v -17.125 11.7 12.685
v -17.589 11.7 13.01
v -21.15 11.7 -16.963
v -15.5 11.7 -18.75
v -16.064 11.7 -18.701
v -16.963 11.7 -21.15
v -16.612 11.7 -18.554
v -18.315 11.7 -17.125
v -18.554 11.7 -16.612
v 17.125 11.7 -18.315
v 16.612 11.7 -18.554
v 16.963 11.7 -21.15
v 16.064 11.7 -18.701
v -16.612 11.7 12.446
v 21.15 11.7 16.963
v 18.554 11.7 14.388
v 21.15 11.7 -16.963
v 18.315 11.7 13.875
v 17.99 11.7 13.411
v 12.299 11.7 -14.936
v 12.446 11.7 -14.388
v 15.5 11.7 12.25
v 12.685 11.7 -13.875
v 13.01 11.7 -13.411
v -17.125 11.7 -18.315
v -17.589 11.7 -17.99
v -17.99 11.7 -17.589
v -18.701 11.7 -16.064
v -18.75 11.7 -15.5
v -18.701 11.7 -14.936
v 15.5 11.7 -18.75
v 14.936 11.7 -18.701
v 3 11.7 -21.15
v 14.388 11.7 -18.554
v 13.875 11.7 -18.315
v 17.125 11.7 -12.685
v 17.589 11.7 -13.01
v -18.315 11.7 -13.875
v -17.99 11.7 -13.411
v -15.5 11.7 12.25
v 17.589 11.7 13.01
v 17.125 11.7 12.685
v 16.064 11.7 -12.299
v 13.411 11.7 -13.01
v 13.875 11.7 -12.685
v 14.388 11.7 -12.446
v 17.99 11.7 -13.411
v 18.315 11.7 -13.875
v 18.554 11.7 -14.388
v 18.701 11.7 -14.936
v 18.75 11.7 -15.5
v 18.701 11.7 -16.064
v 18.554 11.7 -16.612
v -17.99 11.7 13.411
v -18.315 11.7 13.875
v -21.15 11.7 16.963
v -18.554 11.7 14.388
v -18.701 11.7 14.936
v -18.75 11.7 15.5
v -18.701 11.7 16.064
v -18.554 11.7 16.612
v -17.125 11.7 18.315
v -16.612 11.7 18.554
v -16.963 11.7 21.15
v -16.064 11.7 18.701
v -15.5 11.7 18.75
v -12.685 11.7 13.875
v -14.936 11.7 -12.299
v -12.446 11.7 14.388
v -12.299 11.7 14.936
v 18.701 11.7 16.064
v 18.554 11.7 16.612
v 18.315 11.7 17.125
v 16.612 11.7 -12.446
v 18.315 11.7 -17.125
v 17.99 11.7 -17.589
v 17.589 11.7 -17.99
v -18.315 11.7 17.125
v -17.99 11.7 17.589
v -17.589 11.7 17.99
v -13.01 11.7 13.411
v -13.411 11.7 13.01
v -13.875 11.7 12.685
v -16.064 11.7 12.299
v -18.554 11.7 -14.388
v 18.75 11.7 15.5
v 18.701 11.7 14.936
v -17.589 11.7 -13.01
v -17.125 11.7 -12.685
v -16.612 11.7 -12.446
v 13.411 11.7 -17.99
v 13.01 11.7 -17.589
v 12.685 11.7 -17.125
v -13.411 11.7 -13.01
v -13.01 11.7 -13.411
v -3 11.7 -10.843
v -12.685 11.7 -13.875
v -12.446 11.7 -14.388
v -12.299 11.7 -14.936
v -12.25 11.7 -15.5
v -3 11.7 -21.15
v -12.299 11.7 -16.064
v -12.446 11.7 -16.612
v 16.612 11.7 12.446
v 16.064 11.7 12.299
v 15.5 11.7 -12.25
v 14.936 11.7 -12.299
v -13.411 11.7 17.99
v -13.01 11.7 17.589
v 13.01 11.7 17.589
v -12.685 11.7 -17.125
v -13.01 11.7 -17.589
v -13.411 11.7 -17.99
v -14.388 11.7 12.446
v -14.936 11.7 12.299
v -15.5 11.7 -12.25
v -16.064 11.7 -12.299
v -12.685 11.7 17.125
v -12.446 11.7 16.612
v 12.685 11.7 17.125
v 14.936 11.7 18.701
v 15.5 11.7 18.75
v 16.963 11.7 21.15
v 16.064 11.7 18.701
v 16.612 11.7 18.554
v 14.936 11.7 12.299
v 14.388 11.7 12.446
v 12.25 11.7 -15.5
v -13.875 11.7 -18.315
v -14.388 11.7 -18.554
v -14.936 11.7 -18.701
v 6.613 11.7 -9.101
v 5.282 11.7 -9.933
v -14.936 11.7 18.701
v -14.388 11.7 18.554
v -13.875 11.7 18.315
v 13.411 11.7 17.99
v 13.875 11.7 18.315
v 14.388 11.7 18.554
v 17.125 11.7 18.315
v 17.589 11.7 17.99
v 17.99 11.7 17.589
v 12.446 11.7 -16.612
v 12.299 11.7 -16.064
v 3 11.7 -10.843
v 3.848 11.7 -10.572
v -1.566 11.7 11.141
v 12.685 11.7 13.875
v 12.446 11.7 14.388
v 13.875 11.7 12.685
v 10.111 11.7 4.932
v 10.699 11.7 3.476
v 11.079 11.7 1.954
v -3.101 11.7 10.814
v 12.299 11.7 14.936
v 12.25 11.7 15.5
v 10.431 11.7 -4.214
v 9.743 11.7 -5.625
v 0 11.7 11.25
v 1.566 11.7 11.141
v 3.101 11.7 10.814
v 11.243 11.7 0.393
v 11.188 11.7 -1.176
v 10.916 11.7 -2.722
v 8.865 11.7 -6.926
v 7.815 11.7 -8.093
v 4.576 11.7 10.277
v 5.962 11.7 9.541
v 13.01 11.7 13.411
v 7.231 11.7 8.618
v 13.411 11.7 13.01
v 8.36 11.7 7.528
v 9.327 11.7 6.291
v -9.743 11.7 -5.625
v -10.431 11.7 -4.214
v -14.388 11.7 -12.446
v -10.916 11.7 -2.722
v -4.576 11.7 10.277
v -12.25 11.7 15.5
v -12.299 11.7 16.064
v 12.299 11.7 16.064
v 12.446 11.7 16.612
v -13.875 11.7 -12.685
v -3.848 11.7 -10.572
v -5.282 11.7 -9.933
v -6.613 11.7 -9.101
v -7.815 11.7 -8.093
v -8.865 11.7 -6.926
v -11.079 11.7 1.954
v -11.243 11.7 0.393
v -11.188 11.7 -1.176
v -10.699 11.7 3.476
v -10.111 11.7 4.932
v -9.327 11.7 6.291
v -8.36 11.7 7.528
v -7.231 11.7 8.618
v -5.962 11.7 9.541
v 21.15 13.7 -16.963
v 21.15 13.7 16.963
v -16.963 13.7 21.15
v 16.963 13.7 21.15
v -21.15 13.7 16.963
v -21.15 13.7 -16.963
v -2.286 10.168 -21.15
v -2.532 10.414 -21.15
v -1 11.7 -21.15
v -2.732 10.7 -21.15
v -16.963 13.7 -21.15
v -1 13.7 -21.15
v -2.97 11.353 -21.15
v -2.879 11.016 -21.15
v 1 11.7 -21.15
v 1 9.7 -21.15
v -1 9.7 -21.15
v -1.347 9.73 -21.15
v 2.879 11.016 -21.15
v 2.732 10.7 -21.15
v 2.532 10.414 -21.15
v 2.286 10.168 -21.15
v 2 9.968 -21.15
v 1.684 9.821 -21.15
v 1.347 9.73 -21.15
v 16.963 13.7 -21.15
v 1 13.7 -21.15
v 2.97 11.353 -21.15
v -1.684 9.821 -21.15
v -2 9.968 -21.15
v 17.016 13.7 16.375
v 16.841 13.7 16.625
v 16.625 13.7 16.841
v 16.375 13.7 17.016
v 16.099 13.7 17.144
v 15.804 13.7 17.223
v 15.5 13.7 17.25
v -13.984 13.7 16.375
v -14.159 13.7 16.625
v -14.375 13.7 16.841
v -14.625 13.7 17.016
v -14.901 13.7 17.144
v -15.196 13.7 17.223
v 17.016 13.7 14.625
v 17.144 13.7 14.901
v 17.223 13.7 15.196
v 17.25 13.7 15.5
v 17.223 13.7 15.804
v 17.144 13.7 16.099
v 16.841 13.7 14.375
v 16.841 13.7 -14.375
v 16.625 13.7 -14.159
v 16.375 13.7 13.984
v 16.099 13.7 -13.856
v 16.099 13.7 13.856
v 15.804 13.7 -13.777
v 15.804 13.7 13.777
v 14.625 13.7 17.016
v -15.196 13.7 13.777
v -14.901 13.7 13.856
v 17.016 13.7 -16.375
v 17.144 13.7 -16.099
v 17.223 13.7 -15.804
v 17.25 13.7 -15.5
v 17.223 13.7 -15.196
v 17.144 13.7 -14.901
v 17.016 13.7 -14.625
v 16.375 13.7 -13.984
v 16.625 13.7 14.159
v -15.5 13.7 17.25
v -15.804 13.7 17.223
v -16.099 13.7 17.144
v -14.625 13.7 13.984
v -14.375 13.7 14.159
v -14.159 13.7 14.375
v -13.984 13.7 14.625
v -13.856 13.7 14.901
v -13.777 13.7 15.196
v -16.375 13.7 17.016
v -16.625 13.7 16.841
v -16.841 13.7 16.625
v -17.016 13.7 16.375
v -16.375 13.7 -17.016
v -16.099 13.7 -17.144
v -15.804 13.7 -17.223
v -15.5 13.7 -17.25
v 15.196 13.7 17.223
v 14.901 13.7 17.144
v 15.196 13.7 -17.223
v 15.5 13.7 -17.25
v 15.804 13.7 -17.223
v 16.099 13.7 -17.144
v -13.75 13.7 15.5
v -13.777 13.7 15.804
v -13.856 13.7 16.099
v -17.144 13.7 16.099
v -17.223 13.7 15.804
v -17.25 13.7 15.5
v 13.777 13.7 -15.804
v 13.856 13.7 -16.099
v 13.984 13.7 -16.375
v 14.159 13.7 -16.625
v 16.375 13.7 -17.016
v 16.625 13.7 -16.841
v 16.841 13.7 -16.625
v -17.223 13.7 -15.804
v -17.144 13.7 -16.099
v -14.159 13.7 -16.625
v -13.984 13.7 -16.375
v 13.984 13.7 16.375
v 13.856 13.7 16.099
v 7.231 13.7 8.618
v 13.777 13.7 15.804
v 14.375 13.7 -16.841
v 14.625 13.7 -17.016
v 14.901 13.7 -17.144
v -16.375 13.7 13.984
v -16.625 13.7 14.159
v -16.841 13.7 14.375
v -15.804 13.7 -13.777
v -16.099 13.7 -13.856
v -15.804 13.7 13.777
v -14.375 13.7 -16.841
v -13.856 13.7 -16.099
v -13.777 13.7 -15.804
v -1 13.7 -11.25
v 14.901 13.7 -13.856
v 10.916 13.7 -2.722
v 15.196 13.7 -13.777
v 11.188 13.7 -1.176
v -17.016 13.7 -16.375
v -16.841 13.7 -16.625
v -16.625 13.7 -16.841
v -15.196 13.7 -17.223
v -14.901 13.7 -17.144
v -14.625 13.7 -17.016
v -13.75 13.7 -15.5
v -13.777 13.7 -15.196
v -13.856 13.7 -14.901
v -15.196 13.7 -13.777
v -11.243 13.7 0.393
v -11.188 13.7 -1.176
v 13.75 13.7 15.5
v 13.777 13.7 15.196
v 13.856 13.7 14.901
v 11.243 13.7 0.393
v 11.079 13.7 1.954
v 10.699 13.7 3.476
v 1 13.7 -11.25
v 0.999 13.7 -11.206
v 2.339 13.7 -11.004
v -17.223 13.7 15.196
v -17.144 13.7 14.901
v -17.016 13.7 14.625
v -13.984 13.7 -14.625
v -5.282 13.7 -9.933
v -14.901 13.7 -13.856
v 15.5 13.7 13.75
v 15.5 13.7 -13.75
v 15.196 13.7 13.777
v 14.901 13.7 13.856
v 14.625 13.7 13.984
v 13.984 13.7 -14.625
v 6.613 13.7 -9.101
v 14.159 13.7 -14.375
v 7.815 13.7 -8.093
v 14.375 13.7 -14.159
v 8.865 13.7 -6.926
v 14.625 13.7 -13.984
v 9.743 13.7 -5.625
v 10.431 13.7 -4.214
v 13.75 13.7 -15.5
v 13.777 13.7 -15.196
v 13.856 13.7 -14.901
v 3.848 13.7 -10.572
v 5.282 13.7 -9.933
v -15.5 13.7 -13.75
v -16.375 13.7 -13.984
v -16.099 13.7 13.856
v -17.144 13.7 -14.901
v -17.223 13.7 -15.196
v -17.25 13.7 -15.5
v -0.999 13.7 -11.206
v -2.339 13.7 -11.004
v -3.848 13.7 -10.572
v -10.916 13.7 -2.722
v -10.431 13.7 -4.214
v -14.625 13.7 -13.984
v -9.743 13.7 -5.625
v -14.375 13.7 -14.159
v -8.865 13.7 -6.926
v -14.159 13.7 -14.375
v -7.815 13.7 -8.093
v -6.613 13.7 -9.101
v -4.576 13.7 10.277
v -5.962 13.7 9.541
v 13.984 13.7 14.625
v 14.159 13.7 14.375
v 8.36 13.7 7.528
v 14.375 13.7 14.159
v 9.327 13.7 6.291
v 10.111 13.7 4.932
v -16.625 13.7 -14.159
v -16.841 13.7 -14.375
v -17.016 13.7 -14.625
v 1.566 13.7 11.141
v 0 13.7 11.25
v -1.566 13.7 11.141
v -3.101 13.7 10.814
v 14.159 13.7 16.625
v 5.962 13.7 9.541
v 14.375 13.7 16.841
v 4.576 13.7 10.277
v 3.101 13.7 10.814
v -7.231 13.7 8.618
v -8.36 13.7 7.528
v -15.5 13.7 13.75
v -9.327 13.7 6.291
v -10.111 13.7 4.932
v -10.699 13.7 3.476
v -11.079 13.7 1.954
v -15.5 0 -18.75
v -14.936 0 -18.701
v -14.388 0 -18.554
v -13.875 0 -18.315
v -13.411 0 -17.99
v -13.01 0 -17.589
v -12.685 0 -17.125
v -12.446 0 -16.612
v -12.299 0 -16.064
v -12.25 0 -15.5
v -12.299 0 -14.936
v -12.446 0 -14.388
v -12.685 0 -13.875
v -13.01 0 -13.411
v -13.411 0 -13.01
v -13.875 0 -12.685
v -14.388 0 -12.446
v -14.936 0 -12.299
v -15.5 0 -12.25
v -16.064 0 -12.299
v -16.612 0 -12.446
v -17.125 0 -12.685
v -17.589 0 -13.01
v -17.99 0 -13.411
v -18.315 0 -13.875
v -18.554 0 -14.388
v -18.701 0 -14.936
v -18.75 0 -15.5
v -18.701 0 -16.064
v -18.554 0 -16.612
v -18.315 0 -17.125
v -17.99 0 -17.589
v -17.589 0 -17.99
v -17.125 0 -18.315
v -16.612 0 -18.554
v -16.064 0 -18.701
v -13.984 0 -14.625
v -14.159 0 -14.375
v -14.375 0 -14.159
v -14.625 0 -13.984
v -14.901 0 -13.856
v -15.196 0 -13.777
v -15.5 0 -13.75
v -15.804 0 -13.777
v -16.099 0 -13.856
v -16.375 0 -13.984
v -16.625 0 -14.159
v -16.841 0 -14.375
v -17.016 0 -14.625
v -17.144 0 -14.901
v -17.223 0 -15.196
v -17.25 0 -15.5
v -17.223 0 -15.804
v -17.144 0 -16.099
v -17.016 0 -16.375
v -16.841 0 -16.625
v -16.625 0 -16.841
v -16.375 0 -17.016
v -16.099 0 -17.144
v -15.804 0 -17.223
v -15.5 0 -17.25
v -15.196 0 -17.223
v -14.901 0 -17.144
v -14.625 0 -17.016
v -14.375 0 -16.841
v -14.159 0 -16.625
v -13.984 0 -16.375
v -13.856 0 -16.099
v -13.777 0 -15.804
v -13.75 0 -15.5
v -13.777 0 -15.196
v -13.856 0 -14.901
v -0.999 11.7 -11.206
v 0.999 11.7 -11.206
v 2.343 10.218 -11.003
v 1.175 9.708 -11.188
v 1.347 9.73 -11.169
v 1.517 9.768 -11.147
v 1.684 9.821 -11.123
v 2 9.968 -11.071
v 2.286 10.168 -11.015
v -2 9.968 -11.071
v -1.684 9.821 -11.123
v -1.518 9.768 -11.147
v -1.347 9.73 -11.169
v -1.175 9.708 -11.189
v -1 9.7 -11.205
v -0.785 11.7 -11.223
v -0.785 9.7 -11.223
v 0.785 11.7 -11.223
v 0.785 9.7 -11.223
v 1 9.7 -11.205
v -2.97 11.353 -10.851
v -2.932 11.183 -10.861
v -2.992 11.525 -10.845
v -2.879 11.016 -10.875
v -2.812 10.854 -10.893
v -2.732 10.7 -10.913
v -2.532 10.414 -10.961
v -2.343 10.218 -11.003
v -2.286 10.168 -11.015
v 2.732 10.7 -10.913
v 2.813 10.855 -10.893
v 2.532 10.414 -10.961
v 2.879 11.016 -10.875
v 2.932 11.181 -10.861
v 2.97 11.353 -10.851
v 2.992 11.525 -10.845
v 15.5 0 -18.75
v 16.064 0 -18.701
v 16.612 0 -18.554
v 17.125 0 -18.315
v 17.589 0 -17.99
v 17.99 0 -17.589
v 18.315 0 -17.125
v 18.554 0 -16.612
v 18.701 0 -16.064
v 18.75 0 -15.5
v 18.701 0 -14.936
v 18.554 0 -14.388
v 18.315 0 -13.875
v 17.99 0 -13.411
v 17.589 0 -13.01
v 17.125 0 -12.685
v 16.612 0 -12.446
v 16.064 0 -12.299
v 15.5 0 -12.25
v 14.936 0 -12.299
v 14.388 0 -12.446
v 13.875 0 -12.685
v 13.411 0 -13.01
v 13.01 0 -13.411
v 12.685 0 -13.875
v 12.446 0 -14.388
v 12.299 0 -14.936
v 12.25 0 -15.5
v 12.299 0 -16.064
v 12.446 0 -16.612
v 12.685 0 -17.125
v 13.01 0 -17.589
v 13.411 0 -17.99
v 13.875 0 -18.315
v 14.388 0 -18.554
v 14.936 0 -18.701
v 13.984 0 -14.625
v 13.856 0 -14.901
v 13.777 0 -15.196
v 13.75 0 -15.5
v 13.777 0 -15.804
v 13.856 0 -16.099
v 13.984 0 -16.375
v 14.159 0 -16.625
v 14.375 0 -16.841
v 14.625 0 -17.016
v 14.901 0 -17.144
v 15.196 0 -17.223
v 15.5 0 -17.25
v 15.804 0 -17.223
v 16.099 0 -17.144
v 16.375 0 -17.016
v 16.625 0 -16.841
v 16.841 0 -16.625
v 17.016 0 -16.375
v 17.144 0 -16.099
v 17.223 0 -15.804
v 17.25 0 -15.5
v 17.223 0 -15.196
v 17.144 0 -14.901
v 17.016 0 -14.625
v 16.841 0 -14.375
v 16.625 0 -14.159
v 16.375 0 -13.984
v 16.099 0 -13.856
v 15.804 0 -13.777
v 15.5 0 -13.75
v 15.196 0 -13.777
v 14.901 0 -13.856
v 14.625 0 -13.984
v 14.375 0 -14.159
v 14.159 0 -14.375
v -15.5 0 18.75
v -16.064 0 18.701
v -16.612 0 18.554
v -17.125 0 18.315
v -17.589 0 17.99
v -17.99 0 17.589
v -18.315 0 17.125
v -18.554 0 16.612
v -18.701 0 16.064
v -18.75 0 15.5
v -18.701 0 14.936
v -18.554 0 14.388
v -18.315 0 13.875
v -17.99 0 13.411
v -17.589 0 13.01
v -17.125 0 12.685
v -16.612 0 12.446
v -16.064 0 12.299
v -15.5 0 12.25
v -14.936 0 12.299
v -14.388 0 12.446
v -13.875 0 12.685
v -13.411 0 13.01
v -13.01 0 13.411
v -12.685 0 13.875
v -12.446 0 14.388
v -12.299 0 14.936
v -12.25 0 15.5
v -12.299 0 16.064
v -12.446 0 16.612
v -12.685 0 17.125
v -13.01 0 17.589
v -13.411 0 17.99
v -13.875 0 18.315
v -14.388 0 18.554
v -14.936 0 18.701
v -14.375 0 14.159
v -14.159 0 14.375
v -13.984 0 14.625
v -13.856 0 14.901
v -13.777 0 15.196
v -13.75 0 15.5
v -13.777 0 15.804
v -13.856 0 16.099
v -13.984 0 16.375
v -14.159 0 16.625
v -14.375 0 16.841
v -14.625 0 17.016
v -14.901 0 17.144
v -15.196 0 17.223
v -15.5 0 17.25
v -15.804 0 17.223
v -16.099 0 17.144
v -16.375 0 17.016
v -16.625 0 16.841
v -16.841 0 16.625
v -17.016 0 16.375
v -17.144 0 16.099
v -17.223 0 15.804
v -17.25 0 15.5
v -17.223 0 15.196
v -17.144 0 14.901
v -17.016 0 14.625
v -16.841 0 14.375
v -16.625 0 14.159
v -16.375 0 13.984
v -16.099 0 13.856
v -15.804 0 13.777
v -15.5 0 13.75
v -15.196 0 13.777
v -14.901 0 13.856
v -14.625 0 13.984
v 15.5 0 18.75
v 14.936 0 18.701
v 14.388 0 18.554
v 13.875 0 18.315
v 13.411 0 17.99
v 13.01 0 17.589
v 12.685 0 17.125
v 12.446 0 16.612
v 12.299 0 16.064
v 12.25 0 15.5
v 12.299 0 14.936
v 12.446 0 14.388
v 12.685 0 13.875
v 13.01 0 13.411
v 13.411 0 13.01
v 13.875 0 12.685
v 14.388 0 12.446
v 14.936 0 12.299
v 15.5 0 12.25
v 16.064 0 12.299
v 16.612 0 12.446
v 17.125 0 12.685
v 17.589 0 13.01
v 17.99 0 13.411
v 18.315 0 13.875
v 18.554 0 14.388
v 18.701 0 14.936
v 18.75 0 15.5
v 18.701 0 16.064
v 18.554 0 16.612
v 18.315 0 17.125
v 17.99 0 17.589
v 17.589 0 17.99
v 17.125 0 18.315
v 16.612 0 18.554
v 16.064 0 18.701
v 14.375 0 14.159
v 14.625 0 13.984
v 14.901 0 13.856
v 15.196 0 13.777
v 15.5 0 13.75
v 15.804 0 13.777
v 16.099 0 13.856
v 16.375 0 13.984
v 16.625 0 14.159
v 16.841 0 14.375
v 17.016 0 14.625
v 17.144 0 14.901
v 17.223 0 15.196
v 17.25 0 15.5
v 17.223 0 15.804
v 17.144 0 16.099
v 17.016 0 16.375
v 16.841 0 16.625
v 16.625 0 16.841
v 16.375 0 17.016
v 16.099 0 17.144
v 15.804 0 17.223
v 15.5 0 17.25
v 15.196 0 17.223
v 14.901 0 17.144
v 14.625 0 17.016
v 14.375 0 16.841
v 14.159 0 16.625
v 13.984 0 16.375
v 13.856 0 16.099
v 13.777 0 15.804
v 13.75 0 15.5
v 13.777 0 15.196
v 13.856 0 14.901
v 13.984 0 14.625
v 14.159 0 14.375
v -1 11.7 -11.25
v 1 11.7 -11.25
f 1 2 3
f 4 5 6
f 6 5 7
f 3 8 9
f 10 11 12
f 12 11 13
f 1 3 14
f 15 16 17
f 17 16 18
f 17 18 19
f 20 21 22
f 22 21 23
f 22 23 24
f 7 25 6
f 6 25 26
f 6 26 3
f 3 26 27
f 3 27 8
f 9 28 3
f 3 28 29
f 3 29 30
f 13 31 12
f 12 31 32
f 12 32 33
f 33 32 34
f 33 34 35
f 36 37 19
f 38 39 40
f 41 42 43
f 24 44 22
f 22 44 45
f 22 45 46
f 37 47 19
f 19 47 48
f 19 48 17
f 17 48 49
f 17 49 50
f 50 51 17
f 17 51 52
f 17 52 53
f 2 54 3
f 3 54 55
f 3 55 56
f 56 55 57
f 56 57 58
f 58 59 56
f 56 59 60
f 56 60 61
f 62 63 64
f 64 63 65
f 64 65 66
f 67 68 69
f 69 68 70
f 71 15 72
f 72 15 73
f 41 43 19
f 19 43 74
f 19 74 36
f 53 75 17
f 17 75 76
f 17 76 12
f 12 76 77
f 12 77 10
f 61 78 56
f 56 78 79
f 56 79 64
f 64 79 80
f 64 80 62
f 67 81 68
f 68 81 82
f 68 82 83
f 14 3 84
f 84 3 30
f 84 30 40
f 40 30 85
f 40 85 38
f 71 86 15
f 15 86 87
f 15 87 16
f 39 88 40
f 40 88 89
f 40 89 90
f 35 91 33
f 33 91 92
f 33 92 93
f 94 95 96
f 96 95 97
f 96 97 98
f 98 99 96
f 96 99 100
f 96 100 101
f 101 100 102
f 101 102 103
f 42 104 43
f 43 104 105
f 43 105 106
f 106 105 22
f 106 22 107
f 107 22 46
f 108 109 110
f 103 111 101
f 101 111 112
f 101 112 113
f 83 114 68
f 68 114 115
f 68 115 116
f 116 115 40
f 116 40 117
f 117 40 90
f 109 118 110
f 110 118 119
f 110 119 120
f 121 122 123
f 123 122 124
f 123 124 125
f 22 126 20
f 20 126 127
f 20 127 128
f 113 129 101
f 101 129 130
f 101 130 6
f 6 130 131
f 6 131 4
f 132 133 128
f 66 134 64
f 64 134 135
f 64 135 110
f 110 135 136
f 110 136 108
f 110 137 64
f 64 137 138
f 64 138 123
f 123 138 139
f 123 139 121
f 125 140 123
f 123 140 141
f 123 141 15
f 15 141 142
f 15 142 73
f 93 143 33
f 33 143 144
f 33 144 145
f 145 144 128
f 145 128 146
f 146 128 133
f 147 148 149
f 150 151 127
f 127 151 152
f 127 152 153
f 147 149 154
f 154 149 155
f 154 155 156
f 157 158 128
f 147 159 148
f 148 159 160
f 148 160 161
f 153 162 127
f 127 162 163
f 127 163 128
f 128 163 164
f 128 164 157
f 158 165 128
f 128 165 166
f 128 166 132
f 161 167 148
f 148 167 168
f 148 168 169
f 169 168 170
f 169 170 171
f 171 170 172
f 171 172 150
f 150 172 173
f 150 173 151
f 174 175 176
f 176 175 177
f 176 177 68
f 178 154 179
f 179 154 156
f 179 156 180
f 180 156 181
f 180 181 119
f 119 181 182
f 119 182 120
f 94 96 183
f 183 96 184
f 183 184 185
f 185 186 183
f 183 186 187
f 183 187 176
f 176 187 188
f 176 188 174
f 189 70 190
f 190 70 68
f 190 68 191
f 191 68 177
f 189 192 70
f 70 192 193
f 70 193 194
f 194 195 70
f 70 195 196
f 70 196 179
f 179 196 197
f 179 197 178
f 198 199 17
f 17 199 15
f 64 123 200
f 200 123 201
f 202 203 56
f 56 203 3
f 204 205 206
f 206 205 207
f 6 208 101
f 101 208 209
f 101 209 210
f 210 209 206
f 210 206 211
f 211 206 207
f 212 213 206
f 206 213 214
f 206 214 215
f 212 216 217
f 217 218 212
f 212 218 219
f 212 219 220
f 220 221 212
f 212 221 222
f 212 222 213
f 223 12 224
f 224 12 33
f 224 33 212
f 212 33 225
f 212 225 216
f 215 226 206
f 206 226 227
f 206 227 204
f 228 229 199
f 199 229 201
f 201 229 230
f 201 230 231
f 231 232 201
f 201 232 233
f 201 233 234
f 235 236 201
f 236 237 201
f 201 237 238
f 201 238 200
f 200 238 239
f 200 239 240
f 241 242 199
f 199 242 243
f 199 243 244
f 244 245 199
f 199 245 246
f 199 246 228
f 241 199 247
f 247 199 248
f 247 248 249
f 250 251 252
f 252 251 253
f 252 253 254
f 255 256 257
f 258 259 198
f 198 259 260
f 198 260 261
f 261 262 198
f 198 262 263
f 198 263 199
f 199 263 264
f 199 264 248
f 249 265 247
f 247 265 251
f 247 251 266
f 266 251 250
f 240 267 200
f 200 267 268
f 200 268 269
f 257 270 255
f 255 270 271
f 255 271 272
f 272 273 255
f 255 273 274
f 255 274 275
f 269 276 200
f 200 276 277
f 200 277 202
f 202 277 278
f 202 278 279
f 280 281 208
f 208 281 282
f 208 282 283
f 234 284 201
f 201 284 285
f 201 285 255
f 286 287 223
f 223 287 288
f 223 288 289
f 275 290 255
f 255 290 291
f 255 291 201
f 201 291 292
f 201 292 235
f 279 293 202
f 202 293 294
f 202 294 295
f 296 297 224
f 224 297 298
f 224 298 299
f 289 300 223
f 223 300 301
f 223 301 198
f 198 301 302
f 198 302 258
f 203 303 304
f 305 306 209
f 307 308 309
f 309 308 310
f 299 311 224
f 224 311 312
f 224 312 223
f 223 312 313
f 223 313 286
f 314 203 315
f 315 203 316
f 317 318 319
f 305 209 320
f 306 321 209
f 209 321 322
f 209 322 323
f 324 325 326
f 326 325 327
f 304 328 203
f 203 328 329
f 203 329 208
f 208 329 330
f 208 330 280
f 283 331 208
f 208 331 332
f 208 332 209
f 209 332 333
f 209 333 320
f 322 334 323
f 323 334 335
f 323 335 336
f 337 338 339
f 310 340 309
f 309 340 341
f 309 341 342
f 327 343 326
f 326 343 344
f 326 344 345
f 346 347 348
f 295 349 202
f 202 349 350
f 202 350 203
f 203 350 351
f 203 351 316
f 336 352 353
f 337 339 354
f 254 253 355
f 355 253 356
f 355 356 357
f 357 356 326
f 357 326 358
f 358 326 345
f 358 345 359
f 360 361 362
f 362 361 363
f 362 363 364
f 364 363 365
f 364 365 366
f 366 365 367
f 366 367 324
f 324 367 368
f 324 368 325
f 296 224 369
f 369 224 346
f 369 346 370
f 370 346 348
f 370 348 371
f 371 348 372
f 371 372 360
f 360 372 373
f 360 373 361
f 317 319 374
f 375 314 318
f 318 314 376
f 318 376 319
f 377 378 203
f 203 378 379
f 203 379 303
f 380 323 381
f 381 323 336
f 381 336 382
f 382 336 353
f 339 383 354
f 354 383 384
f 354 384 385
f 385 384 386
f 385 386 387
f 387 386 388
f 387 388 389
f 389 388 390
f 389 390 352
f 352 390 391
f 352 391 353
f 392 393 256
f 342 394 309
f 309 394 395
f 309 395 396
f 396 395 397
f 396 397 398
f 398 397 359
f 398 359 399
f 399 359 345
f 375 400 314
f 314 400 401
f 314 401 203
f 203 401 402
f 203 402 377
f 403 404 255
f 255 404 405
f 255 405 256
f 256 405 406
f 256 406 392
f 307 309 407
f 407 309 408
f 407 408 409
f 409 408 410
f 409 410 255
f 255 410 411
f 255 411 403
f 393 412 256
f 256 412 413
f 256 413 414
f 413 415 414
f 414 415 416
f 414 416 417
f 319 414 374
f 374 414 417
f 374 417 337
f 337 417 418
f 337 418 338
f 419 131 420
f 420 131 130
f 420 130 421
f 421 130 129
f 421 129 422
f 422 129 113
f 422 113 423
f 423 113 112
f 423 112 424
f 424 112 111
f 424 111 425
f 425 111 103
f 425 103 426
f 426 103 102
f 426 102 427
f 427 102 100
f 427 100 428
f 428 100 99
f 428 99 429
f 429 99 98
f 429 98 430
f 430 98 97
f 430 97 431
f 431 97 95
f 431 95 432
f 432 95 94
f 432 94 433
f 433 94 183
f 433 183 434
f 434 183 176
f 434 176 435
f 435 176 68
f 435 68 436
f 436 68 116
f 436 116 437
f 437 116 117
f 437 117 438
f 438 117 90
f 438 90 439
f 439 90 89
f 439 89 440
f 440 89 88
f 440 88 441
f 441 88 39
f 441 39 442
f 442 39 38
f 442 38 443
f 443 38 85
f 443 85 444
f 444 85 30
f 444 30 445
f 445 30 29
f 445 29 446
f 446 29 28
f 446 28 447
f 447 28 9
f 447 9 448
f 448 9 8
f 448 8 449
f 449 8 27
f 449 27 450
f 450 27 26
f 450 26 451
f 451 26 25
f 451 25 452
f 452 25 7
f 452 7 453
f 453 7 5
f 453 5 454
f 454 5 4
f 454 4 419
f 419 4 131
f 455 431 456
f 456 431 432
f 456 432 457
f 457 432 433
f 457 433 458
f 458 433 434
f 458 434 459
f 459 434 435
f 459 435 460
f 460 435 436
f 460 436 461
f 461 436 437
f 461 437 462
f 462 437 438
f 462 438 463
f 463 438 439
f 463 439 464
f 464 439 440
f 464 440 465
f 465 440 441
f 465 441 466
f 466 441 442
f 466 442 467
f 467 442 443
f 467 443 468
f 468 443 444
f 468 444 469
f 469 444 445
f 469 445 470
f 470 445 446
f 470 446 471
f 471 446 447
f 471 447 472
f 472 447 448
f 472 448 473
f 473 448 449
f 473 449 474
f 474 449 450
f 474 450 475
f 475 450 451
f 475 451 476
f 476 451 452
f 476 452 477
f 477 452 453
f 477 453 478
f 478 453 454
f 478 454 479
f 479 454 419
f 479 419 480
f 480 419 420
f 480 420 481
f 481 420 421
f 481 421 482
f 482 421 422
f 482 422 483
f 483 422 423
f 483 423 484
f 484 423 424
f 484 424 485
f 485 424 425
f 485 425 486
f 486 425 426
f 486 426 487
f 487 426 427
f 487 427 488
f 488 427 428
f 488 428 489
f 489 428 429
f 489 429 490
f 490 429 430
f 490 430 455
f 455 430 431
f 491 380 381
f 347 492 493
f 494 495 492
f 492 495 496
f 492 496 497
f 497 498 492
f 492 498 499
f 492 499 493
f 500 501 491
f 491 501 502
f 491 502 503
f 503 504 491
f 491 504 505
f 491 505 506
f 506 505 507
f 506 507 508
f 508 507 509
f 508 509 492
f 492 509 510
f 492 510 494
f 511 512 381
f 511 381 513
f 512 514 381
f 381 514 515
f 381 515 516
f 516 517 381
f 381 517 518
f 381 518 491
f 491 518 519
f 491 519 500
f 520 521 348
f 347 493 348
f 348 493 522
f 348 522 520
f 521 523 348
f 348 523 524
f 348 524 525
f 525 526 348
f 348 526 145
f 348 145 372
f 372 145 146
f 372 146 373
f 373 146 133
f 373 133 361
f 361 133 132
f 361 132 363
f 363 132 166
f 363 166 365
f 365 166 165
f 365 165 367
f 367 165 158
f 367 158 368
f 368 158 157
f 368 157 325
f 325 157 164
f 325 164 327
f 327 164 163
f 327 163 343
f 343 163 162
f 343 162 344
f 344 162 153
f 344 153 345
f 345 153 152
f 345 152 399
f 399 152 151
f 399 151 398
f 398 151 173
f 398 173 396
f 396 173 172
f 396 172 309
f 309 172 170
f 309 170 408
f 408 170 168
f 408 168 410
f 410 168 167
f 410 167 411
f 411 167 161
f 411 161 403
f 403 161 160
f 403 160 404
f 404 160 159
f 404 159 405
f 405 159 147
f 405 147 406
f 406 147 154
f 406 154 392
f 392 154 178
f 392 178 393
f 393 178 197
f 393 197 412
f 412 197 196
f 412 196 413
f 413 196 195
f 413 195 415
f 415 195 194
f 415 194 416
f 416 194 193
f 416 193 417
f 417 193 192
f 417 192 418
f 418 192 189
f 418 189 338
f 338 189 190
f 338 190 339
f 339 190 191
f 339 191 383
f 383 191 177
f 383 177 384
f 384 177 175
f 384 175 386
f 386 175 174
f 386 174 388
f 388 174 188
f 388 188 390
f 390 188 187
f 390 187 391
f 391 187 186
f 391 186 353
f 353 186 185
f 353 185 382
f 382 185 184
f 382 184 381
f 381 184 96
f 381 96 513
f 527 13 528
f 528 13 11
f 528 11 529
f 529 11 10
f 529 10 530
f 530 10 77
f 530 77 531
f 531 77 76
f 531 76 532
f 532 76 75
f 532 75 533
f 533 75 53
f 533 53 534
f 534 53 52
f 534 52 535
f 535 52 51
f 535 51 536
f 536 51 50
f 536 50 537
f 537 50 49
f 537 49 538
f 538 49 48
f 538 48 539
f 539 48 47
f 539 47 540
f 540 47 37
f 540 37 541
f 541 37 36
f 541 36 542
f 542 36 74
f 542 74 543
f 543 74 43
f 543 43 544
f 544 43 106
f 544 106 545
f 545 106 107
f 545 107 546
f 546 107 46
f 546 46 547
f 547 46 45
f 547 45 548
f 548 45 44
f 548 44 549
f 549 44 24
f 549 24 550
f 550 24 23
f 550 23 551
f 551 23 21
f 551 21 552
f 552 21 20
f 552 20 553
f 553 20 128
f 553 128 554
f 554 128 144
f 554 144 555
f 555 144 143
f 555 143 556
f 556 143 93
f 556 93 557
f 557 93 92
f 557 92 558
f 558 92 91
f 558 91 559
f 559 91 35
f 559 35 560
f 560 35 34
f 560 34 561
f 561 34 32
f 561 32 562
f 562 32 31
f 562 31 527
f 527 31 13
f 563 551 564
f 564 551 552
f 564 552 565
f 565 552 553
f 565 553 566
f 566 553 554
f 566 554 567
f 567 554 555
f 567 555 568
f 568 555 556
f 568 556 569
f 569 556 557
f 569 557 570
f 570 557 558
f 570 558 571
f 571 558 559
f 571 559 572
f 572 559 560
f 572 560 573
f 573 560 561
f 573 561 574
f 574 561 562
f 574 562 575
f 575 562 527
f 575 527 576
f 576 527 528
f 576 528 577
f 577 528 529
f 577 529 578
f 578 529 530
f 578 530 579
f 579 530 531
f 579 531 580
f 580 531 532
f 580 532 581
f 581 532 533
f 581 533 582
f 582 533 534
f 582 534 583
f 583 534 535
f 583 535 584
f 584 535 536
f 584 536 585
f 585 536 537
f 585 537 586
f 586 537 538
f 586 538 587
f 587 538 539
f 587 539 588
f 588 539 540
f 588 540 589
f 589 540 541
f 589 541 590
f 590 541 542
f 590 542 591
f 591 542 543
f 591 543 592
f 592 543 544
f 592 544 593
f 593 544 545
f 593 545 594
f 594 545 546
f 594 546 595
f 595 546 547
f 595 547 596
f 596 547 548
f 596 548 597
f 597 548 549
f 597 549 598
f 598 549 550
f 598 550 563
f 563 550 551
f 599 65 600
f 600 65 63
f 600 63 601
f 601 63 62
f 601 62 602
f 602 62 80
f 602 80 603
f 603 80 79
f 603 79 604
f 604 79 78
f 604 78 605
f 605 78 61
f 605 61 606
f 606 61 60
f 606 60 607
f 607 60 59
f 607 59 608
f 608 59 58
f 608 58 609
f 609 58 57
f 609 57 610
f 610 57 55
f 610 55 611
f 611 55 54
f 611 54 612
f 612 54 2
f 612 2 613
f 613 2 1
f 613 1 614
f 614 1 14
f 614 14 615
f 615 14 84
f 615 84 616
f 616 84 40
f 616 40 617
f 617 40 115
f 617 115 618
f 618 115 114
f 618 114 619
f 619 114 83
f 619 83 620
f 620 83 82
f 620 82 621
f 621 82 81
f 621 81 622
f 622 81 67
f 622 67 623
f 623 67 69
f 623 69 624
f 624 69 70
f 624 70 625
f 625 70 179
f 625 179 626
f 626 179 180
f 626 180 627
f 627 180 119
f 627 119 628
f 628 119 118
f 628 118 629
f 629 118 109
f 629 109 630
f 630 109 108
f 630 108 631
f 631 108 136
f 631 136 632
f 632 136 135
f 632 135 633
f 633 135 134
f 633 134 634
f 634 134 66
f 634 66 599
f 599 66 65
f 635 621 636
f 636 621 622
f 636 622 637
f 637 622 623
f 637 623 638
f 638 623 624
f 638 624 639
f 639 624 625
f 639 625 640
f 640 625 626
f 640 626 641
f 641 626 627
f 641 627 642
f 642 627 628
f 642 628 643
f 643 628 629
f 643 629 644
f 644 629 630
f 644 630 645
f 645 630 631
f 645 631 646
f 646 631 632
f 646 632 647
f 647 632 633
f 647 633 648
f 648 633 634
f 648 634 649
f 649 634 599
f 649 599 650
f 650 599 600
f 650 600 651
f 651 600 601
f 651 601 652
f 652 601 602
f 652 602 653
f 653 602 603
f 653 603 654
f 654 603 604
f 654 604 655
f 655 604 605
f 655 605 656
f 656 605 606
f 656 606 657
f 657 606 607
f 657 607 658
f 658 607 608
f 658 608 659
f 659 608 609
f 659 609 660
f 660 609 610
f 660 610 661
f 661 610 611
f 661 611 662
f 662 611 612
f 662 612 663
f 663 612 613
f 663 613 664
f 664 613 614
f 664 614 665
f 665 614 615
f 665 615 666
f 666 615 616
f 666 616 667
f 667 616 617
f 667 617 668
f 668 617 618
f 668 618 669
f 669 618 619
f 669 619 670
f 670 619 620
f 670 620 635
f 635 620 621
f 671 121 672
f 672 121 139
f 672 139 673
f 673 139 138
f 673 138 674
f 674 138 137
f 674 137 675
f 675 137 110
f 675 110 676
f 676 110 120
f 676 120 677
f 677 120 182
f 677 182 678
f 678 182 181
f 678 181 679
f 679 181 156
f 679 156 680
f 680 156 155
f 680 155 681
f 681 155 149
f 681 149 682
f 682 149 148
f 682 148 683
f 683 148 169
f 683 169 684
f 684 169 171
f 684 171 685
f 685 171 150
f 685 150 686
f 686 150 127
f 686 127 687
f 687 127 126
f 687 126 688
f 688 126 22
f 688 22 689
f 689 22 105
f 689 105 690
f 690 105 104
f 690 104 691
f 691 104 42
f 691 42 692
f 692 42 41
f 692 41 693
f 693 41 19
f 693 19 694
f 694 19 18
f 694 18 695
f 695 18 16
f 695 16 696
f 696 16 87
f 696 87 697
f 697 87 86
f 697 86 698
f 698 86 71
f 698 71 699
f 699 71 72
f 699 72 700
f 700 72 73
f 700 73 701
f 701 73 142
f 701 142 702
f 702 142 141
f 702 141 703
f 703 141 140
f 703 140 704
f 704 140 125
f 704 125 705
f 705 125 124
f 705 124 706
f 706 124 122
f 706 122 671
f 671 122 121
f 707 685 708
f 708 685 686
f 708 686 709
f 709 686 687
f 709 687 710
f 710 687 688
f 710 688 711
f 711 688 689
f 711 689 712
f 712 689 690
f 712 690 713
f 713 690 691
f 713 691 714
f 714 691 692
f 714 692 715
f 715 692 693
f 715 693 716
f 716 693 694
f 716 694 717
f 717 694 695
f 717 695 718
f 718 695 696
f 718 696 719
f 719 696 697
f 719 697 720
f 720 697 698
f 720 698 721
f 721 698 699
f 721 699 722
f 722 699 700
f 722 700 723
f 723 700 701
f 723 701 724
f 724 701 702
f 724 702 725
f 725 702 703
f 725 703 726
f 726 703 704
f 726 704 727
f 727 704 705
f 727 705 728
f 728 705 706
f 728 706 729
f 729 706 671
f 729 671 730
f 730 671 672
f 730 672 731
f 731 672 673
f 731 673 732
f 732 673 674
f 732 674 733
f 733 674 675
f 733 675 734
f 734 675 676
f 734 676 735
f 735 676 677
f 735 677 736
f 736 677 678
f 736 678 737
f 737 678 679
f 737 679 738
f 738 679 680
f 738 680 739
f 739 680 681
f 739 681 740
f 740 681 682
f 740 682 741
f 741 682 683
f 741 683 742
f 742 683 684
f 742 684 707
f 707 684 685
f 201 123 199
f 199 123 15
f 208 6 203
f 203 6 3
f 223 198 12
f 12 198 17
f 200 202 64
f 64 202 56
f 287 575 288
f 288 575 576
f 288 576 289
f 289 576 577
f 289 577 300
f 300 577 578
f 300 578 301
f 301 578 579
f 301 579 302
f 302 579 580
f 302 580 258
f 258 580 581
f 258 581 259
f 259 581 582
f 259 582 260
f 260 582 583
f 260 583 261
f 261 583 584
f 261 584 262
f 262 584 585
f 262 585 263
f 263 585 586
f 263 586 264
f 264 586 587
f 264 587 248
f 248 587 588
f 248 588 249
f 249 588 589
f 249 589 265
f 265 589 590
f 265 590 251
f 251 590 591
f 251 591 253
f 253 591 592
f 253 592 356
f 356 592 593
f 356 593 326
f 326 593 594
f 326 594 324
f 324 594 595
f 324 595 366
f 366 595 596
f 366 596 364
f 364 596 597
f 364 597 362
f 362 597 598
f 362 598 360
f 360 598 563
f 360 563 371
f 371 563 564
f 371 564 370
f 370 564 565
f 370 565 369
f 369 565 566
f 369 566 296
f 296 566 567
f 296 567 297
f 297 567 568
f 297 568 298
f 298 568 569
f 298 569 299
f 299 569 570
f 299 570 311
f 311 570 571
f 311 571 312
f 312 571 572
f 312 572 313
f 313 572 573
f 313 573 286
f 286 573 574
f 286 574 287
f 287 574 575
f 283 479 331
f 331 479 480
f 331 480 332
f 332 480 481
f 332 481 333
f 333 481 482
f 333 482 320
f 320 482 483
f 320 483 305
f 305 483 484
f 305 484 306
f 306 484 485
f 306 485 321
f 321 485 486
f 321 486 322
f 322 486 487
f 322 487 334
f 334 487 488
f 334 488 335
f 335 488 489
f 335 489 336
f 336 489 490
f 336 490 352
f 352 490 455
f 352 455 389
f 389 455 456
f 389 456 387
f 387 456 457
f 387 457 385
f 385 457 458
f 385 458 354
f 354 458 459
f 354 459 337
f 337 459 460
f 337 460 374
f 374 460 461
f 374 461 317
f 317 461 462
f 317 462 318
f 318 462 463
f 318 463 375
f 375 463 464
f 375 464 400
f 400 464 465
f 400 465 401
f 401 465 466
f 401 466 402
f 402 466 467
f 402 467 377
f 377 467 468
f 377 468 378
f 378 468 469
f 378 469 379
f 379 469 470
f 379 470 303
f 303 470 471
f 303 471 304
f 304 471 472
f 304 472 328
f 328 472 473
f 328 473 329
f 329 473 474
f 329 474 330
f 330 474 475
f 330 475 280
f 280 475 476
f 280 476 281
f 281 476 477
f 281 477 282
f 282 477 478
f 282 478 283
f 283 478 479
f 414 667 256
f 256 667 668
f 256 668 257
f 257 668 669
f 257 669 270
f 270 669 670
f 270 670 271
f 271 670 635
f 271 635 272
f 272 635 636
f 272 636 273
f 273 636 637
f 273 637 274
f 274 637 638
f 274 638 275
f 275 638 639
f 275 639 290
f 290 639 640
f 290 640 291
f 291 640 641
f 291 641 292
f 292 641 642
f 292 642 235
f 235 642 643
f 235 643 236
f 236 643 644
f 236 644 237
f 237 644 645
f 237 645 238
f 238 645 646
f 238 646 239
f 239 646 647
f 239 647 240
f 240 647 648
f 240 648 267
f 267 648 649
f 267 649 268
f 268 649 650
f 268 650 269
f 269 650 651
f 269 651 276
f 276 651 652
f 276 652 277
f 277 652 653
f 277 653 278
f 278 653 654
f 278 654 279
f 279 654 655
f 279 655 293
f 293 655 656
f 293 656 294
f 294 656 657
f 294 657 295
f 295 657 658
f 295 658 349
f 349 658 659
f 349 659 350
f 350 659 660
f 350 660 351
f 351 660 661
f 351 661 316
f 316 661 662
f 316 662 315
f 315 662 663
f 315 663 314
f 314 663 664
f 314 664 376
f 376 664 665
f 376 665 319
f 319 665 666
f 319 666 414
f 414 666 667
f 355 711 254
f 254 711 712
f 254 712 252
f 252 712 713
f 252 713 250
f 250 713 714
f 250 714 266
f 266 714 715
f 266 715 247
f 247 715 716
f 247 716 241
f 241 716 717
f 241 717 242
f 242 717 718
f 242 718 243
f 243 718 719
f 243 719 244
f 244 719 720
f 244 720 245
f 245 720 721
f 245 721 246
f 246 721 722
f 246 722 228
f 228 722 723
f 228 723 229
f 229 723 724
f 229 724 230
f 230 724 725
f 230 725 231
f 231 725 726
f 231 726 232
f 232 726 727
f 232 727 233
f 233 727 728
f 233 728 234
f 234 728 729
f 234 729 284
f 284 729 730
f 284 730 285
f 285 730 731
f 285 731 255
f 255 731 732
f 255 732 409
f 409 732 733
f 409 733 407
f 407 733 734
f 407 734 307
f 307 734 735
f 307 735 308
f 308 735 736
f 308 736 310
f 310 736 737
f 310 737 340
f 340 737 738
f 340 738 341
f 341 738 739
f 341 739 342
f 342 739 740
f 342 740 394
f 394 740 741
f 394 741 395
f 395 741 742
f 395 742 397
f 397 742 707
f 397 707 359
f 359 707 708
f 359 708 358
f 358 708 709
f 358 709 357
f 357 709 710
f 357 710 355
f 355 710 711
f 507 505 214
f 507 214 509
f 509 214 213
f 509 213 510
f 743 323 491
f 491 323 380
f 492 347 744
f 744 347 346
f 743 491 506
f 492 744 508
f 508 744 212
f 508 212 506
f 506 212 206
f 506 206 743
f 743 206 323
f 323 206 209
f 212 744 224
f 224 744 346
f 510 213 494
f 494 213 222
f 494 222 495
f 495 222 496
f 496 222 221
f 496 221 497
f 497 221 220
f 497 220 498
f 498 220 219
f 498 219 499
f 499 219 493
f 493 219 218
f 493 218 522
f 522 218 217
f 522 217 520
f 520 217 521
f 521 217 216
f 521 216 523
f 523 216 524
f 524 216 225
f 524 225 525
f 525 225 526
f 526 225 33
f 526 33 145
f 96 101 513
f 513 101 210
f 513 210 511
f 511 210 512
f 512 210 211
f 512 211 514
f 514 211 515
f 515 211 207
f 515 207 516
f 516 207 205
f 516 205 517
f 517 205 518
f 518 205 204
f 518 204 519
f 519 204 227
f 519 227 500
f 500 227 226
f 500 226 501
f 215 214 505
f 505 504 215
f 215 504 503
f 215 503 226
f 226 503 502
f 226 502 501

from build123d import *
from build123d.topology import SkipClean

# Parameters (mm, degrees)
SKETCH1_R               = 3.25
BOSS_EXTRUDE1_DEPTH     = 13.7
SKETCH2_W               = 42.3
SKETCH2_H               = 42.3
SKETCH2_R               = 11.25
BOSS_EXTRUDE2_DEPTH     = 2
CUT_EXTRUDE1_DEPTH      = 33.898860163
SKETCH4_R               = 1.75
CUT_EXTRUDE2_DEPTH      = 33.898860163
MIRROR6_COPY_1_SKETCH_R = 1.75
MIRROR6_COPY_1_DEPTH    = 33.898860163
BOSS_EXTRUDE3_DEPTH     = 2
CUT_EXTRUDE3_DEPTH      = 2
FILLET1_R               = 2


with BuildPart() as part:
    # Sketch1 → Boss-Extrude1 (new body)
    with BuildSketch(Plane(origin=(0, 0, 0), x_dir=(1, 0, 0), z_dir=(0, 1, 0))):
        with Locations(Location((-15.5, 15.5, 0), (0, 0, 270))):
            Circle(SKETCH1_R)
    extrude(amount=BOSS_EXTRUDE1_DEPTH)


with BuildPart() as body_2:
    # Mirror2: mirrored copy
    add(part.part.mirror(Plane(origin=(0, 0, 0), x_dir=(0, 0, 1), z_dir=(1, 0, 0))))


with BuildPart() as body_3:
    # Mirror3: mirrored copy
    add(part.part.mirror(Plane.XY))


with BuildPart() as body_4:
    # Mirror3 2: mirrored copy
    add(body_2.part.mirror(Plane.XY))


with BuildPart() as part_1:
    add(part.part)

    add(body_2.part)  # Boss-Extrude2 merges body 2

    add(body_3.part)  # Boss-Extrude2 merges body 3

    add(body_4.part)  # Boss-Extrude2 merges body 4
    # Sketch2 → Boss-Extrude2 (add)
    with BuildSketch(Plane(origin=(0, 13.7, 0), x_dir=(1, 0, 0), z_dir=(0, 1, 0))):
        Rectangle(SKETCH2_W, SKETCH2_H)
        with Locations(Location((0, 0, 0), (0, 0, 270))):
            Circle(SKETCH2_R, mode=Mode.SUBTRACT)
    extrude(amount=-BOSS_EXTRUDE2_DEPTH)

    # Sketch3 → Cut-Extrude1 (cut, through all)
    with BuildSketch(Plane(origin=(0, 13.7, 0), x_dir=(1, 0, 0), z_dir=(0, 1, 0))):
        Polygon((-16.963055506, 21.15), (-21.15, 16.963055506), (-21.15, 21.15), align=None)
        Polygon((16.963055506, -21.15), (21.15, -16.963055506), (21.15, -21.15), align=None)
    cut_extrude1 = extrude(amount=-CUT_EXTRUDE1_DEPTH, mode=Mode.SUBTRACT)

    # Mirror4: Cut-Extrude1 across plane
    add(cut_extrude1.mirror(Plane.XY), mode=Mode.SUBTRACT)

    # Sketch4 → Cut-Extrude2 (cut, through all)
    with BuildSketch(Plane.XZ):
        with Locations(Location((15.5, -15.5, 0), (0, 0, 270))):
            Circle(SKETCH4_R)
    cut_extrude2 = extrude(amount=-CUT_EXTRUDE2_DEPTH, mode=Mode.SUBTRACT)

    # Mirror5: Cut-Extrude2 across plane
    add(cut_extrude2.mirror(Plane(origin=(0, 0, 0), x_dir=(0, 0, 1), z_dir=(1, 0, 0))), mode=Mode.SUBTRACT)

    # Mirror6: Cut-Extrude2 across plane
    add(cut_extrude2.mirror(Plane.XY), mode=Mode.SUBTRACT)

    # Mirror6 copy 1 sketch → Mirror6 copy 1 (cut, through all)
    with BuildSketch(Plane(origin=(0, 0, 0), x_dir=(-1, 0, 0), z_dir=(0, -1, 0))):
        with Locations(Location((15.5, -15.5, 0), (0, 0, 270))):
            Circle(MIRROR6_COPY_1_SKETCH_R)
    extrude(amount=-MIRROR6_COPY_1_DEPTH, mode=Mode.SUBTRACT)

    # Sketch6 → Boss-Extrude3 (add)
    with SkipClean():  # the faces are left unmerged after this step: merging them gives an invalid solid
        with BuildSketch(Plane.XZ.offset(-11.7)):
            with BuildLine():
                Line((-3, -21.15), (-3, -10.842624221))
                ThreePointArc((-3, -10.842624221), (0, -11.25), (3, -10.842624221))
                Line((3, -10.842624221), (3, -21.15))
                Line((3, -21.15), (-3, -21.15))
            make_face()
        extrude(amount=BOSS_EXTRUDE3_DEPTH)

    # Sketch7 → Cut-Extrude3 (cut)
    with SkipClean():  # the faces are left unmerged after this step: merging them gives an invalid solid
        with BuildSketch(Plane(origin=(0, 13.7, 0), x_dir=(1, 0, 0), z_dir=(0, 1, 0))):
            with BuildLine():
                Line((-1, 11.25), (-1, 21.15))
                ThreePointArc((-1, 21.15), (0, 22.15), (1, 21.15))
                Line((1, 21.15), (1, 11.25))
                ThreePointArc((1, 11.25), (0, 10.25), (-1, 11.25))
            make_face()
        extrude(amount=-CUT_EXTRUDE3_DEPTH, mode=Mode.SUBTRACT)

    # Fillet1
    fillet1_edges = [part_1.edges().sort_by_distance(p)[0] for p in [
        (3, 9.7, -15.996312111),
        (-3, 9.7, -15.996312111),
    ]]
    fillet(fillet1_edges, radius=FILLET1_R - 0.0001)  # a hair under: the kernel refuses the full size


solid = part_1.part
